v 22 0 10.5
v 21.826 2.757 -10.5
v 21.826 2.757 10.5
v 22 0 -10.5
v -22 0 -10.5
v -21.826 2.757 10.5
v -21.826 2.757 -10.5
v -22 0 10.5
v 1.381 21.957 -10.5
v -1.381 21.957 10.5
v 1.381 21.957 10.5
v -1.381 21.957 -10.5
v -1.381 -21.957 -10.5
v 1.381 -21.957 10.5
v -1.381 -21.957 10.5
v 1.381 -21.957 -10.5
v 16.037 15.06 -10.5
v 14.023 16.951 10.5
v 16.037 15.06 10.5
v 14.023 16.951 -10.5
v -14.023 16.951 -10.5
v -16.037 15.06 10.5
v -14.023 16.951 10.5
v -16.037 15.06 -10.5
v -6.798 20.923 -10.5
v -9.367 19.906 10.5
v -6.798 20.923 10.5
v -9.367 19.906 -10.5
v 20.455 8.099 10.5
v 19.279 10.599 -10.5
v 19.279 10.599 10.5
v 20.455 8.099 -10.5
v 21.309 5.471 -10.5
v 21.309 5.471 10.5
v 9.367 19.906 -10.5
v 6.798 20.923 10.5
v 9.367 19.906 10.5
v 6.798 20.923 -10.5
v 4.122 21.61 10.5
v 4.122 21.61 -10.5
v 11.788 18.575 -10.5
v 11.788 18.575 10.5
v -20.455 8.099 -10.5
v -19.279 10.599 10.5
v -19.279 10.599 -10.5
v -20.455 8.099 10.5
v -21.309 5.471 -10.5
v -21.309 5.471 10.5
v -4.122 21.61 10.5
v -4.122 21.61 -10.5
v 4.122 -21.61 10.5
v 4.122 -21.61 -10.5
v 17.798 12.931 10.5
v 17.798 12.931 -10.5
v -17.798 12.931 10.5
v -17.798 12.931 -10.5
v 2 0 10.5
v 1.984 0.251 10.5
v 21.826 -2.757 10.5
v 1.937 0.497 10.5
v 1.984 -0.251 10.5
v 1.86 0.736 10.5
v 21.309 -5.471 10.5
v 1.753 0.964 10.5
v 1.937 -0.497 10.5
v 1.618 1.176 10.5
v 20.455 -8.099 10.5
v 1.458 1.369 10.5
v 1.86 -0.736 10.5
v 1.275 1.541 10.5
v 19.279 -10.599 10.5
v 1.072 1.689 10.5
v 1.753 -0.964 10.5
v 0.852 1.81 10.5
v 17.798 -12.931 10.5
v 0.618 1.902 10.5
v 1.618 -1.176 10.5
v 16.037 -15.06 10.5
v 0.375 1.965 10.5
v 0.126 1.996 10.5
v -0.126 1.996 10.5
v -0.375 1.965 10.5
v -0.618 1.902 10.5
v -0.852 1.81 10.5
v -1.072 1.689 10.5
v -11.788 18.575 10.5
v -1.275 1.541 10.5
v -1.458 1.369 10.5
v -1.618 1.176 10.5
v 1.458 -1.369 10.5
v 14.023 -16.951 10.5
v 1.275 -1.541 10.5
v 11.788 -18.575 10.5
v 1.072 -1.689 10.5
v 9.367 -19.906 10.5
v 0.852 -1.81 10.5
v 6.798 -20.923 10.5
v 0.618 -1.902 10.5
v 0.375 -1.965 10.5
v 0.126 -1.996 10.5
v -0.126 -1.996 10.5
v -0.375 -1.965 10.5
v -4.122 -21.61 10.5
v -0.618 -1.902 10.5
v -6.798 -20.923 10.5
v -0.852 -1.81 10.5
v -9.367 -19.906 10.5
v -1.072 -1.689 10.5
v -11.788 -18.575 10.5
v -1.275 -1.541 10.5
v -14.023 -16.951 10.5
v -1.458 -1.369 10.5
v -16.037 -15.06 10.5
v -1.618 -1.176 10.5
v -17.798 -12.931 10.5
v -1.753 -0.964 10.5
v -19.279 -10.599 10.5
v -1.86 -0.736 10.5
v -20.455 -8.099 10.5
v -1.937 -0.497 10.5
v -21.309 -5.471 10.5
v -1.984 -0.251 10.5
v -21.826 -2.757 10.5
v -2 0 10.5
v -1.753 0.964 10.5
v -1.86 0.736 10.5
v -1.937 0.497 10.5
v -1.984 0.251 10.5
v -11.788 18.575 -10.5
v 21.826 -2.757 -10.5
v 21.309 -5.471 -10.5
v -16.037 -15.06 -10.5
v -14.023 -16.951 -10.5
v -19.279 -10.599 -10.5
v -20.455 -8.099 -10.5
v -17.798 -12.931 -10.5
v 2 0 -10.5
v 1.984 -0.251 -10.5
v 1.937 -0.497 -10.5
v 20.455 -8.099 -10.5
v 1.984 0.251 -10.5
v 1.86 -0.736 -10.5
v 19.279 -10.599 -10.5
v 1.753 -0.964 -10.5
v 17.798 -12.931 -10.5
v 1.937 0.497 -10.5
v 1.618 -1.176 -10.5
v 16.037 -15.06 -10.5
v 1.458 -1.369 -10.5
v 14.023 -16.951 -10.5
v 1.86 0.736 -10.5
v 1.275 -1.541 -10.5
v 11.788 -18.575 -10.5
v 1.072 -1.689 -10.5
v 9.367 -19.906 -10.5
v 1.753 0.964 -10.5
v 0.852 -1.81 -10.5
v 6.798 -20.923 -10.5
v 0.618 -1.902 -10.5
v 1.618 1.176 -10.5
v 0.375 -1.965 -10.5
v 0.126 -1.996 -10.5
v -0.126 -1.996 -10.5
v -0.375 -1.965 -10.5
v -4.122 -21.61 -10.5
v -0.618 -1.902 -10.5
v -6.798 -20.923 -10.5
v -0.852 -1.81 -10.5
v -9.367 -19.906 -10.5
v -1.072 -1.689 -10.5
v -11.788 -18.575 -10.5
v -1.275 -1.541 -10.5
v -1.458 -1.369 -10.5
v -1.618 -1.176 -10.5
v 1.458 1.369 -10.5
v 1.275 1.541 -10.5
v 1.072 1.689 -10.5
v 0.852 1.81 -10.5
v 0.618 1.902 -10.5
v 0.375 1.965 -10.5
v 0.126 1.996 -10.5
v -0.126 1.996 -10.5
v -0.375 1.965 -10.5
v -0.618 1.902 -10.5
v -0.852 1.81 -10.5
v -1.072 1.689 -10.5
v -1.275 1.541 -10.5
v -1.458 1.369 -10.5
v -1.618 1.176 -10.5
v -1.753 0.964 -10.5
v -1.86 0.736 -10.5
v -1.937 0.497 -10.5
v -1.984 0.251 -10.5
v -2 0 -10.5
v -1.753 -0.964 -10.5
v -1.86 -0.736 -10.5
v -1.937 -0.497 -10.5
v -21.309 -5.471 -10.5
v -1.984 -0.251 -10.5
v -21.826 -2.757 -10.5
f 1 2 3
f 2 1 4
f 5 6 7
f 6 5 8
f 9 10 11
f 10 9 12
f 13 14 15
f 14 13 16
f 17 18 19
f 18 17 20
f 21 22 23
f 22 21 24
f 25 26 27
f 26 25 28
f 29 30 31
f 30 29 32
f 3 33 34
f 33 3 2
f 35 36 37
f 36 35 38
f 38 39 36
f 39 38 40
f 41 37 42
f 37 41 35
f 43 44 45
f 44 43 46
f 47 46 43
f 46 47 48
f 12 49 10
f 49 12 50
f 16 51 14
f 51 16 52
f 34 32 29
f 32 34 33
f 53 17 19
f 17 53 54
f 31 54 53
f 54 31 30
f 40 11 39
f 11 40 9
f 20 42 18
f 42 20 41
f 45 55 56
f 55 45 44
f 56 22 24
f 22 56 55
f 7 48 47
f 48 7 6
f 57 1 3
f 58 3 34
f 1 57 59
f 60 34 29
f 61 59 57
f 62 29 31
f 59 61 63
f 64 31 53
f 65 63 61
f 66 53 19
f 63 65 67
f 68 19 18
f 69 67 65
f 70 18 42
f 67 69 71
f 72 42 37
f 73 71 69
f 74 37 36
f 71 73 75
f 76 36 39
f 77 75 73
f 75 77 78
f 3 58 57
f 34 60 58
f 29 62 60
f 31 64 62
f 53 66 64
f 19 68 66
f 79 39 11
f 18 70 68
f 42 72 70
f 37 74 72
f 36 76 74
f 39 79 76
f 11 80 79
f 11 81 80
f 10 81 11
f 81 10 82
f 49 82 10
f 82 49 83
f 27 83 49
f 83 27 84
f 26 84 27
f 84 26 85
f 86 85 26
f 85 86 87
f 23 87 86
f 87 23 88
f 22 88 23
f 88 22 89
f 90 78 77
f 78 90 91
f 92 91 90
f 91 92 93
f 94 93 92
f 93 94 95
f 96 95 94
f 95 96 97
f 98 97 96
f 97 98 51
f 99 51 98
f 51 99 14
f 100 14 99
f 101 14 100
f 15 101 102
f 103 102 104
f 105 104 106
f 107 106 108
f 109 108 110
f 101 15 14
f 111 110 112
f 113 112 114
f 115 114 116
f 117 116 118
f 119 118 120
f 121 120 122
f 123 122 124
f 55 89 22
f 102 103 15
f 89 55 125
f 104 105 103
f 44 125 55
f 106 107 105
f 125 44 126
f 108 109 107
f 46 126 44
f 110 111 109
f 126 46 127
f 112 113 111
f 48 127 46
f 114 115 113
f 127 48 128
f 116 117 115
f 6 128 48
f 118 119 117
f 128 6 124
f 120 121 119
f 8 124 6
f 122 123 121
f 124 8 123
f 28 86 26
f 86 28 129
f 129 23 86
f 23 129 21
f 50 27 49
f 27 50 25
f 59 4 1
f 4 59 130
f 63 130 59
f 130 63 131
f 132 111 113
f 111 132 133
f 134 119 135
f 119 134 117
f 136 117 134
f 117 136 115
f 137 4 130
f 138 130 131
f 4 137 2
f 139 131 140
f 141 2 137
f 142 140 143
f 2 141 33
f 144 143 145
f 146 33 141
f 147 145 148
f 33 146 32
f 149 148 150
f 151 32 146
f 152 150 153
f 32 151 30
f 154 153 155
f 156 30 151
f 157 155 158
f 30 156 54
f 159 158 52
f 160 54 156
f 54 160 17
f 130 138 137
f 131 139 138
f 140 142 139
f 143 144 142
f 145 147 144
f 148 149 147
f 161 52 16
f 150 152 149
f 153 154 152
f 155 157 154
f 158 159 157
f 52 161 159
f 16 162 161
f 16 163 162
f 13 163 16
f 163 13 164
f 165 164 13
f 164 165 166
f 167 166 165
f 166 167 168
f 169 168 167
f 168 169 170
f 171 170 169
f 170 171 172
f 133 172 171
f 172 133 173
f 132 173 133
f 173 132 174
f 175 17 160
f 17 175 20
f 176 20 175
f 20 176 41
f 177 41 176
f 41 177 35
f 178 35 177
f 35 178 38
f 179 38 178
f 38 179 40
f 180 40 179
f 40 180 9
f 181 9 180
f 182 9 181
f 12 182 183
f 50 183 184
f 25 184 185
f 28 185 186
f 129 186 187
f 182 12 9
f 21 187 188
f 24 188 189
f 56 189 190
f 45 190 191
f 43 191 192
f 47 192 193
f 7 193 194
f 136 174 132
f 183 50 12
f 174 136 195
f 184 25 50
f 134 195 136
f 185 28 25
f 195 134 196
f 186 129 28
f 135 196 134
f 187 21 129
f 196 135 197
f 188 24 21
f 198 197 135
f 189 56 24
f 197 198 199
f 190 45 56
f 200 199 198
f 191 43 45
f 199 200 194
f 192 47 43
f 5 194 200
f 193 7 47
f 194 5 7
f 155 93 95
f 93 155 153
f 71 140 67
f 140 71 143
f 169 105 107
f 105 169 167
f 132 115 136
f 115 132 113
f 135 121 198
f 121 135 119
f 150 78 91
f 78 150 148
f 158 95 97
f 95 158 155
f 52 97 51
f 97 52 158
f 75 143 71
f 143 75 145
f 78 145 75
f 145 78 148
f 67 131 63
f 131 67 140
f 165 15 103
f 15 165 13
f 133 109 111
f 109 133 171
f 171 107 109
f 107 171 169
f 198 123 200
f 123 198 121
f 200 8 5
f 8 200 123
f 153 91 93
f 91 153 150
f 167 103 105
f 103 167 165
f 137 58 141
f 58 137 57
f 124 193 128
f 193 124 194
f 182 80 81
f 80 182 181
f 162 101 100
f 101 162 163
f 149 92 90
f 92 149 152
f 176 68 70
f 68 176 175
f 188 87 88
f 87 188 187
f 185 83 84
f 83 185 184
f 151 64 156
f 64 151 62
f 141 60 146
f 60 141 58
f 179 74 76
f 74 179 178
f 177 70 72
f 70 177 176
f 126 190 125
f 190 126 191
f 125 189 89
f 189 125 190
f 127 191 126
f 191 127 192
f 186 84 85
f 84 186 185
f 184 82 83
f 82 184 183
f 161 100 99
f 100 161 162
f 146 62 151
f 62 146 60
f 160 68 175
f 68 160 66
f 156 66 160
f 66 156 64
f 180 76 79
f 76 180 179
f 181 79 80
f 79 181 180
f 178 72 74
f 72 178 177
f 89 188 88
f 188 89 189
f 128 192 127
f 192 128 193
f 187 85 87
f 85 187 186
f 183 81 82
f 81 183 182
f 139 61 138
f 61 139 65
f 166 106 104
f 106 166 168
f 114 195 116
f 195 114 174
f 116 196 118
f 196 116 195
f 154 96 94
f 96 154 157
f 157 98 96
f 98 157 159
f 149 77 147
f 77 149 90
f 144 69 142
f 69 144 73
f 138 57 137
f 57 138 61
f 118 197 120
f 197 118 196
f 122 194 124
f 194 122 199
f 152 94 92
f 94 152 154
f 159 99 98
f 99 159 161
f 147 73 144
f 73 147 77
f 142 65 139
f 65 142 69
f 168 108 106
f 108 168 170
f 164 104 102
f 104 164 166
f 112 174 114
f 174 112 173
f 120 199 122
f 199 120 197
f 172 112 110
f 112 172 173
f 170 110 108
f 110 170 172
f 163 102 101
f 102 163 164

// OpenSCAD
$fn = 50;


difference() {
	union() {
		translate(v = [0, 0, -10.5000000000]) {
			cylinder(h = 21, r = 22.0000000000);
		}
	}
	union() {
		translate(v = [0, 0, -100.0000000000]) {
			cylinder(h = 200, r = 2.0000000000);
		}
	}
}
